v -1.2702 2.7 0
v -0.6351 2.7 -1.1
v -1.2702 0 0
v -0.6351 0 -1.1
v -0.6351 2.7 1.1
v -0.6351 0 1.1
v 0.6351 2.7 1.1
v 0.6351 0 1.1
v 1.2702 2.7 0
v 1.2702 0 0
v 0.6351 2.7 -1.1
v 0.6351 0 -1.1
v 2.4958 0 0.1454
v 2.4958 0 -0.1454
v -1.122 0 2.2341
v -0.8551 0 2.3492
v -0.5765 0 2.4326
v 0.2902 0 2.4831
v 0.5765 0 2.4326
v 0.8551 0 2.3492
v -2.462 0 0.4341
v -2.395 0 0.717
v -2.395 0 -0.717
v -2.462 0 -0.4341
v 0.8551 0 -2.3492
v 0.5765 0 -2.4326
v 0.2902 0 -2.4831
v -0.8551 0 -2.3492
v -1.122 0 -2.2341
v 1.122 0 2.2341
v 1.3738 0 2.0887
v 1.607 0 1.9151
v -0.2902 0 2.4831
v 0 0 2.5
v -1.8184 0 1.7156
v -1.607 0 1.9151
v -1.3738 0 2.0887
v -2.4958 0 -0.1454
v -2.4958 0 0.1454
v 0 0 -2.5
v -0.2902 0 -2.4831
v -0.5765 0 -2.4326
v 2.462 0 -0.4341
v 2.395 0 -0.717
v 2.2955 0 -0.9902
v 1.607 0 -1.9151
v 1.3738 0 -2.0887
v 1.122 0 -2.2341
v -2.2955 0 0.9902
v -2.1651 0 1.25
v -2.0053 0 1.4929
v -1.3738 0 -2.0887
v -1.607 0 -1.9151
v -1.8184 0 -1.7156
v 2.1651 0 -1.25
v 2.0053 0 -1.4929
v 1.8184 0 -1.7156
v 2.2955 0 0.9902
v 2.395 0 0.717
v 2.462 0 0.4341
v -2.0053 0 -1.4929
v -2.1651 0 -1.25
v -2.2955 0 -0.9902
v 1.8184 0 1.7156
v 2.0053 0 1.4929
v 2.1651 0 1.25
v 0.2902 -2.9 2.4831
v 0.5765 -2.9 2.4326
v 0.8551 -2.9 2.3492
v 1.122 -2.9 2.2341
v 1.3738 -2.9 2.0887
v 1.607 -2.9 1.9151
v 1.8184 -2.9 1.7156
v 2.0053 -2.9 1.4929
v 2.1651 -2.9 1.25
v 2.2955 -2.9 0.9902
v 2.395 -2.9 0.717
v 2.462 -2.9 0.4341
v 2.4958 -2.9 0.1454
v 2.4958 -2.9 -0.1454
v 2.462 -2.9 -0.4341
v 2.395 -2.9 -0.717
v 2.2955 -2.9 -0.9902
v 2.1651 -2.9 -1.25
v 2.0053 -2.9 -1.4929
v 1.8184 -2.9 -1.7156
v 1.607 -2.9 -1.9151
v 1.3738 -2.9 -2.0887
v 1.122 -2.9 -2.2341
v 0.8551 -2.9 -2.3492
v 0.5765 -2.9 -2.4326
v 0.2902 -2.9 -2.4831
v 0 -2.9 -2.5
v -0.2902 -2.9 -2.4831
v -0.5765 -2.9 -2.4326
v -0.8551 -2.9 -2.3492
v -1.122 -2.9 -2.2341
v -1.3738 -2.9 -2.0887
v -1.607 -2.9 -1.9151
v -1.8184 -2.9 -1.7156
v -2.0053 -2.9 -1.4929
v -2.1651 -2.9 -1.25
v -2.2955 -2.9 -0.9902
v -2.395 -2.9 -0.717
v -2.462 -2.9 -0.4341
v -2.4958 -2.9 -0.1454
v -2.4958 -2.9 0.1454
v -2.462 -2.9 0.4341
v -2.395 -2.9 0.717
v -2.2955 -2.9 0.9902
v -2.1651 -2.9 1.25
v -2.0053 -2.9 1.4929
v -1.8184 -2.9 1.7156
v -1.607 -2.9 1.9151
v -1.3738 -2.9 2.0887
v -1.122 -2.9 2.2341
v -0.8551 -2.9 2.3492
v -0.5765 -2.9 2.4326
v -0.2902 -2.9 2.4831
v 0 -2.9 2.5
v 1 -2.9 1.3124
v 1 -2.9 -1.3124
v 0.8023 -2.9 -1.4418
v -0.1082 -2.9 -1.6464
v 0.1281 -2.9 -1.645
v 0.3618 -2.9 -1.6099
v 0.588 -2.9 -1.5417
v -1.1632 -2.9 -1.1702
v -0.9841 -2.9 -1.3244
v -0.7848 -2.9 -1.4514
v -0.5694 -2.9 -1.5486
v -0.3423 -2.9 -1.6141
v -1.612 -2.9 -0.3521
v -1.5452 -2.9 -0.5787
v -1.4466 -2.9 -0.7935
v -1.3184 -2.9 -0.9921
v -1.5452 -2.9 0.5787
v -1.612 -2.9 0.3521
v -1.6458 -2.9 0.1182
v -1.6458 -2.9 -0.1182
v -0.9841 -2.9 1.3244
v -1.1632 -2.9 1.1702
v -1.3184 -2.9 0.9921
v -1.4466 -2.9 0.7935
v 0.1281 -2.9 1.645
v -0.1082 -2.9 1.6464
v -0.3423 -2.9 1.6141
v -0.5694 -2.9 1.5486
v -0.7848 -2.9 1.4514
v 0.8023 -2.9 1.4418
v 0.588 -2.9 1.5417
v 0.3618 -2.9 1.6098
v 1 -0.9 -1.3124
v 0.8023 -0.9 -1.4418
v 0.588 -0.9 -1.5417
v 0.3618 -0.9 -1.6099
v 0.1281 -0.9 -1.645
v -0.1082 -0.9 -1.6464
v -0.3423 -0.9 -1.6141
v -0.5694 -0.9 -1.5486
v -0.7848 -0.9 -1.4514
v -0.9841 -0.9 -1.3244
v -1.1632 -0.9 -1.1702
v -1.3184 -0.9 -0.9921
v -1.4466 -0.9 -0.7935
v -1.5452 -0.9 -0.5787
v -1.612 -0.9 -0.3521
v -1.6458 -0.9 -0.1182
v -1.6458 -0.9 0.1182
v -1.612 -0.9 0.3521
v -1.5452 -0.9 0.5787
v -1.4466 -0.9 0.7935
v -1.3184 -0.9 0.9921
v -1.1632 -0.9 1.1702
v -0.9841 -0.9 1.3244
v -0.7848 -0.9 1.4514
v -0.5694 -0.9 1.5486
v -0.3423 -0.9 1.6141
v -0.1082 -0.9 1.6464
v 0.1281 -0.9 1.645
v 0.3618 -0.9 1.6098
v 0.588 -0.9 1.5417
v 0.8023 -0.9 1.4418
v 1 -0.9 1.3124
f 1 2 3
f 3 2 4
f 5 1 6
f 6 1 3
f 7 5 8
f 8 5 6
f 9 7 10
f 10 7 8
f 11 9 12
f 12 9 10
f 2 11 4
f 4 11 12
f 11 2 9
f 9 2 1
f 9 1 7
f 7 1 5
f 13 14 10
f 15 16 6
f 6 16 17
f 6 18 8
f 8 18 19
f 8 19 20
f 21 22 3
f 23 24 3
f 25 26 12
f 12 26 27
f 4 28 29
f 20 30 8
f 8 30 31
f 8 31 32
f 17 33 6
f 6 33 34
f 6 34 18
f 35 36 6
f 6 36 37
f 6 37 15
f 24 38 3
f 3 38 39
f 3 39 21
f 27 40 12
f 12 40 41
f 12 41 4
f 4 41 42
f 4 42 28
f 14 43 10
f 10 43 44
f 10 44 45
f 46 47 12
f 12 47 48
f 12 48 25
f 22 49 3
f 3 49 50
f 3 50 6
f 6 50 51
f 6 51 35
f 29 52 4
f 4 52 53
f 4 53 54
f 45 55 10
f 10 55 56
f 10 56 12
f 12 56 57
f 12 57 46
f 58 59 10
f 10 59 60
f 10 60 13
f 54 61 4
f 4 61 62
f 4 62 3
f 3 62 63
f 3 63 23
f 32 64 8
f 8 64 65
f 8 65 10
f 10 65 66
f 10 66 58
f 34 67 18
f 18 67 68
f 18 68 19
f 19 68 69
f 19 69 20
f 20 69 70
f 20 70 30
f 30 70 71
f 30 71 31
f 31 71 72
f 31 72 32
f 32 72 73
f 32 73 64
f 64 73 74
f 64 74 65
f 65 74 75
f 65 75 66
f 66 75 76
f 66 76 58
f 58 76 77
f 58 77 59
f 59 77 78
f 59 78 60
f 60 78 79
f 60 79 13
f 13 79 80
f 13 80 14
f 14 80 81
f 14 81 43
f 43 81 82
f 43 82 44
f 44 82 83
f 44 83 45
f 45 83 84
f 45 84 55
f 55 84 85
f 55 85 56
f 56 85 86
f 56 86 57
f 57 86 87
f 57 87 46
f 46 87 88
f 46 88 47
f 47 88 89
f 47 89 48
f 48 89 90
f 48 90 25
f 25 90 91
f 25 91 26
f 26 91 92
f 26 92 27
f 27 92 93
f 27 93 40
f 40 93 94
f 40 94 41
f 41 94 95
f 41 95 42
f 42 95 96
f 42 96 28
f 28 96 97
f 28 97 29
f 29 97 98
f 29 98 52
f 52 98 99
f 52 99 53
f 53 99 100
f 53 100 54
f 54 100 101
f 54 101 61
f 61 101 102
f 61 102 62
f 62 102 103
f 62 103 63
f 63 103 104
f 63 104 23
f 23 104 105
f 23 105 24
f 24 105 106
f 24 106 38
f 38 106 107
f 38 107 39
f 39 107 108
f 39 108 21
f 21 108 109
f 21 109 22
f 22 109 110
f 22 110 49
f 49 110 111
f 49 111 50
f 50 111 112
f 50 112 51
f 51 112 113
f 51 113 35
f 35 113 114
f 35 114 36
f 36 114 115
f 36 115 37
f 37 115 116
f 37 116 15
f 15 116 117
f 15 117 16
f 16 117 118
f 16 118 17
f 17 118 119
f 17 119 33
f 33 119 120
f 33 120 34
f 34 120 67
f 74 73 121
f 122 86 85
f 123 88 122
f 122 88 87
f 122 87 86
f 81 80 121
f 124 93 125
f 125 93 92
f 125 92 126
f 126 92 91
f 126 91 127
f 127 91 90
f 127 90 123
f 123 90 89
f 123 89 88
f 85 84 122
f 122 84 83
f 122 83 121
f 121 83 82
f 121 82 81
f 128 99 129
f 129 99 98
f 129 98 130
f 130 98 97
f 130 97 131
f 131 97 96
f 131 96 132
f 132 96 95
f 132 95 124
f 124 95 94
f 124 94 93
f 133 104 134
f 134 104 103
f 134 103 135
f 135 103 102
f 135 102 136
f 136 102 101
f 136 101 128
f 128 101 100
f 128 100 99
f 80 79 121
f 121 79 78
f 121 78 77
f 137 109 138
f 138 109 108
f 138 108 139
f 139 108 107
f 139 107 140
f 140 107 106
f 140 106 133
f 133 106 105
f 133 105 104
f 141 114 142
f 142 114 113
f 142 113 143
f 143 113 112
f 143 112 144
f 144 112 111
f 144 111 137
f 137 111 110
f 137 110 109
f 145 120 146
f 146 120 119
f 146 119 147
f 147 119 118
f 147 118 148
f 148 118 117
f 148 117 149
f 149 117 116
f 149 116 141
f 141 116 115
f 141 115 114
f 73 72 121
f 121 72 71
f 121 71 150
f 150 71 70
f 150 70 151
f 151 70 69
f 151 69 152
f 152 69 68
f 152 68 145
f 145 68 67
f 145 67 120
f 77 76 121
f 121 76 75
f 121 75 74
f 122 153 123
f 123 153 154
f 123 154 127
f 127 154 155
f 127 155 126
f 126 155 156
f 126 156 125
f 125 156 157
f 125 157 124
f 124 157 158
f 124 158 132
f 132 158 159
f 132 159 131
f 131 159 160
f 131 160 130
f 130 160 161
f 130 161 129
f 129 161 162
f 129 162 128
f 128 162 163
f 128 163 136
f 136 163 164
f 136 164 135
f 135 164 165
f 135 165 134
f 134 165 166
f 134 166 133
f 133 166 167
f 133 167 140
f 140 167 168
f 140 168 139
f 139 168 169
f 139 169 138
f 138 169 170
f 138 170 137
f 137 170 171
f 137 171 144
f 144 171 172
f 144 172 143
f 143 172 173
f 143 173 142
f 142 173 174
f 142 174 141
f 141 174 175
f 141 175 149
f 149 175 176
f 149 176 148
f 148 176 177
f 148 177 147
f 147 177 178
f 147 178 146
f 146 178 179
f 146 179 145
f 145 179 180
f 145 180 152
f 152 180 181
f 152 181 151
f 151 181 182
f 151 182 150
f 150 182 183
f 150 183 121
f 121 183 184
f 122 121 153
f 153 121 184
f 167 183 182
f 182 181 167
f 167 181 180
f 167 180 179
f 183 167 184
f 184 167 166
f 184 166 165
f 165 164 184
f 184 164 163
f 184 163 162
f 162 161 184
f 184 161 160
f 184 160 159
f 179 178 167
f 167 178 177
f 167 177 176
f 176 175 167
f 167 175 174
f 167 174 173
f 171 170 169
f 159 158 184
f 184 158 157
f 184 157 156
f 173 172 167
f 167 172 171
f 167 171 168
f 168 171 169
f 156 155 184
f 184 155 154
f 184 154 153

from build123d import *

# Parameters (mm, degrees)
EXTRUDE_1_DEPTH = 2.7
SKETCH_1_4_R    = 2.5
EXTRUDE_3_DEPTH = 0.9
EXTRUDE_START   = -0.9
SKETCH_1_3_R    = 2.5
SKETCH_1_3_R_2  = 1.65
EXTRUDE_2_DEPTH = 2


with BuildPart() as part:
    # 草图1 → 凸台-拉伸1 (new body)
    with BuildSketch(Plane(origin=(0, 0, 0), x_dir=(1, 0, 0), z_dir=(0, 1, 0))):
        Polygon((1.270170592, 0), (0.635085296, 1.1), (-0.635085296, 1.1), (-1.270170592, 0), (-0.635085296, -1.1), (0.635085296, -1.1), align=None)
    extrude(amount=EXTRUDE_1_DEPTH)

    # 草图1<4> → 凸台-拉伸3 (add)
    with BuildSketch(Plane(origin=(0, 0, 0), x_dir=(1, 0, 0), z_dir=(0, 1, 0))):
        with Locations(Location((0, 0, 0), (0, 0, 270))):
            Circle(SKETCH_1_4_R)
    extrude(amount=-EXTRUDE_3_DEPTH)

    # 草图1<3> → 凸台-拉伸2 (add)
    # profile 1 of 3: a face of its own
    with BuildSketch(Plane(origin=(0, 0, 0), x_dir=(1, 0, 0), z_dir=(0, 1, 0)).offset(EXTRUDE_START)):
        with Locations(Location((0, 0, 0), (0, 0, 270))):
            Circle(SKETCH_1_3_R)
        Circle(SKETCH_1_3_R_2, mode=Mode.SUBTRACT)
    # profile 2 of 3: a face of its own
    with BuildSketch(Plane(origin=(0, 0, 0), x_dir=(1, 0, 0), z_dir=(0, 1, 0)).offset(EXTRUDE_START)):
        with BuildLine():
            ThreePointArc((1.65, 0), (1.478597308, 0.732290926), (1, 1.312440475))
            Line((1, 1.312440475), (1, 0.467949192))
            Line((1, 0.467949192), (1.270170592, 0))
            Line((1.270170592, 0), (1, -0.467949192))
            Line((1, -0.467949192), (1, -1.312440475))
            ThreePointArc((1, -1.312440475), (1.478597308, -0.732290926), (1.65, 0))
        make_face()
    # profile 3 of 3: a face of its own
    with BuildSketch(Plane(origin=(0, 0, 0), x_dir=(1, 0, 0), z_dir=(0, 1, 0)).offset(EXTRUDE_START)):
        Polygon((1.270170592, 0), (1, 0.467949192), (1, -0.467949192), align=None)
    extrude(amount=-EXTRUDE_2_DEPTH)


solid = part.part
